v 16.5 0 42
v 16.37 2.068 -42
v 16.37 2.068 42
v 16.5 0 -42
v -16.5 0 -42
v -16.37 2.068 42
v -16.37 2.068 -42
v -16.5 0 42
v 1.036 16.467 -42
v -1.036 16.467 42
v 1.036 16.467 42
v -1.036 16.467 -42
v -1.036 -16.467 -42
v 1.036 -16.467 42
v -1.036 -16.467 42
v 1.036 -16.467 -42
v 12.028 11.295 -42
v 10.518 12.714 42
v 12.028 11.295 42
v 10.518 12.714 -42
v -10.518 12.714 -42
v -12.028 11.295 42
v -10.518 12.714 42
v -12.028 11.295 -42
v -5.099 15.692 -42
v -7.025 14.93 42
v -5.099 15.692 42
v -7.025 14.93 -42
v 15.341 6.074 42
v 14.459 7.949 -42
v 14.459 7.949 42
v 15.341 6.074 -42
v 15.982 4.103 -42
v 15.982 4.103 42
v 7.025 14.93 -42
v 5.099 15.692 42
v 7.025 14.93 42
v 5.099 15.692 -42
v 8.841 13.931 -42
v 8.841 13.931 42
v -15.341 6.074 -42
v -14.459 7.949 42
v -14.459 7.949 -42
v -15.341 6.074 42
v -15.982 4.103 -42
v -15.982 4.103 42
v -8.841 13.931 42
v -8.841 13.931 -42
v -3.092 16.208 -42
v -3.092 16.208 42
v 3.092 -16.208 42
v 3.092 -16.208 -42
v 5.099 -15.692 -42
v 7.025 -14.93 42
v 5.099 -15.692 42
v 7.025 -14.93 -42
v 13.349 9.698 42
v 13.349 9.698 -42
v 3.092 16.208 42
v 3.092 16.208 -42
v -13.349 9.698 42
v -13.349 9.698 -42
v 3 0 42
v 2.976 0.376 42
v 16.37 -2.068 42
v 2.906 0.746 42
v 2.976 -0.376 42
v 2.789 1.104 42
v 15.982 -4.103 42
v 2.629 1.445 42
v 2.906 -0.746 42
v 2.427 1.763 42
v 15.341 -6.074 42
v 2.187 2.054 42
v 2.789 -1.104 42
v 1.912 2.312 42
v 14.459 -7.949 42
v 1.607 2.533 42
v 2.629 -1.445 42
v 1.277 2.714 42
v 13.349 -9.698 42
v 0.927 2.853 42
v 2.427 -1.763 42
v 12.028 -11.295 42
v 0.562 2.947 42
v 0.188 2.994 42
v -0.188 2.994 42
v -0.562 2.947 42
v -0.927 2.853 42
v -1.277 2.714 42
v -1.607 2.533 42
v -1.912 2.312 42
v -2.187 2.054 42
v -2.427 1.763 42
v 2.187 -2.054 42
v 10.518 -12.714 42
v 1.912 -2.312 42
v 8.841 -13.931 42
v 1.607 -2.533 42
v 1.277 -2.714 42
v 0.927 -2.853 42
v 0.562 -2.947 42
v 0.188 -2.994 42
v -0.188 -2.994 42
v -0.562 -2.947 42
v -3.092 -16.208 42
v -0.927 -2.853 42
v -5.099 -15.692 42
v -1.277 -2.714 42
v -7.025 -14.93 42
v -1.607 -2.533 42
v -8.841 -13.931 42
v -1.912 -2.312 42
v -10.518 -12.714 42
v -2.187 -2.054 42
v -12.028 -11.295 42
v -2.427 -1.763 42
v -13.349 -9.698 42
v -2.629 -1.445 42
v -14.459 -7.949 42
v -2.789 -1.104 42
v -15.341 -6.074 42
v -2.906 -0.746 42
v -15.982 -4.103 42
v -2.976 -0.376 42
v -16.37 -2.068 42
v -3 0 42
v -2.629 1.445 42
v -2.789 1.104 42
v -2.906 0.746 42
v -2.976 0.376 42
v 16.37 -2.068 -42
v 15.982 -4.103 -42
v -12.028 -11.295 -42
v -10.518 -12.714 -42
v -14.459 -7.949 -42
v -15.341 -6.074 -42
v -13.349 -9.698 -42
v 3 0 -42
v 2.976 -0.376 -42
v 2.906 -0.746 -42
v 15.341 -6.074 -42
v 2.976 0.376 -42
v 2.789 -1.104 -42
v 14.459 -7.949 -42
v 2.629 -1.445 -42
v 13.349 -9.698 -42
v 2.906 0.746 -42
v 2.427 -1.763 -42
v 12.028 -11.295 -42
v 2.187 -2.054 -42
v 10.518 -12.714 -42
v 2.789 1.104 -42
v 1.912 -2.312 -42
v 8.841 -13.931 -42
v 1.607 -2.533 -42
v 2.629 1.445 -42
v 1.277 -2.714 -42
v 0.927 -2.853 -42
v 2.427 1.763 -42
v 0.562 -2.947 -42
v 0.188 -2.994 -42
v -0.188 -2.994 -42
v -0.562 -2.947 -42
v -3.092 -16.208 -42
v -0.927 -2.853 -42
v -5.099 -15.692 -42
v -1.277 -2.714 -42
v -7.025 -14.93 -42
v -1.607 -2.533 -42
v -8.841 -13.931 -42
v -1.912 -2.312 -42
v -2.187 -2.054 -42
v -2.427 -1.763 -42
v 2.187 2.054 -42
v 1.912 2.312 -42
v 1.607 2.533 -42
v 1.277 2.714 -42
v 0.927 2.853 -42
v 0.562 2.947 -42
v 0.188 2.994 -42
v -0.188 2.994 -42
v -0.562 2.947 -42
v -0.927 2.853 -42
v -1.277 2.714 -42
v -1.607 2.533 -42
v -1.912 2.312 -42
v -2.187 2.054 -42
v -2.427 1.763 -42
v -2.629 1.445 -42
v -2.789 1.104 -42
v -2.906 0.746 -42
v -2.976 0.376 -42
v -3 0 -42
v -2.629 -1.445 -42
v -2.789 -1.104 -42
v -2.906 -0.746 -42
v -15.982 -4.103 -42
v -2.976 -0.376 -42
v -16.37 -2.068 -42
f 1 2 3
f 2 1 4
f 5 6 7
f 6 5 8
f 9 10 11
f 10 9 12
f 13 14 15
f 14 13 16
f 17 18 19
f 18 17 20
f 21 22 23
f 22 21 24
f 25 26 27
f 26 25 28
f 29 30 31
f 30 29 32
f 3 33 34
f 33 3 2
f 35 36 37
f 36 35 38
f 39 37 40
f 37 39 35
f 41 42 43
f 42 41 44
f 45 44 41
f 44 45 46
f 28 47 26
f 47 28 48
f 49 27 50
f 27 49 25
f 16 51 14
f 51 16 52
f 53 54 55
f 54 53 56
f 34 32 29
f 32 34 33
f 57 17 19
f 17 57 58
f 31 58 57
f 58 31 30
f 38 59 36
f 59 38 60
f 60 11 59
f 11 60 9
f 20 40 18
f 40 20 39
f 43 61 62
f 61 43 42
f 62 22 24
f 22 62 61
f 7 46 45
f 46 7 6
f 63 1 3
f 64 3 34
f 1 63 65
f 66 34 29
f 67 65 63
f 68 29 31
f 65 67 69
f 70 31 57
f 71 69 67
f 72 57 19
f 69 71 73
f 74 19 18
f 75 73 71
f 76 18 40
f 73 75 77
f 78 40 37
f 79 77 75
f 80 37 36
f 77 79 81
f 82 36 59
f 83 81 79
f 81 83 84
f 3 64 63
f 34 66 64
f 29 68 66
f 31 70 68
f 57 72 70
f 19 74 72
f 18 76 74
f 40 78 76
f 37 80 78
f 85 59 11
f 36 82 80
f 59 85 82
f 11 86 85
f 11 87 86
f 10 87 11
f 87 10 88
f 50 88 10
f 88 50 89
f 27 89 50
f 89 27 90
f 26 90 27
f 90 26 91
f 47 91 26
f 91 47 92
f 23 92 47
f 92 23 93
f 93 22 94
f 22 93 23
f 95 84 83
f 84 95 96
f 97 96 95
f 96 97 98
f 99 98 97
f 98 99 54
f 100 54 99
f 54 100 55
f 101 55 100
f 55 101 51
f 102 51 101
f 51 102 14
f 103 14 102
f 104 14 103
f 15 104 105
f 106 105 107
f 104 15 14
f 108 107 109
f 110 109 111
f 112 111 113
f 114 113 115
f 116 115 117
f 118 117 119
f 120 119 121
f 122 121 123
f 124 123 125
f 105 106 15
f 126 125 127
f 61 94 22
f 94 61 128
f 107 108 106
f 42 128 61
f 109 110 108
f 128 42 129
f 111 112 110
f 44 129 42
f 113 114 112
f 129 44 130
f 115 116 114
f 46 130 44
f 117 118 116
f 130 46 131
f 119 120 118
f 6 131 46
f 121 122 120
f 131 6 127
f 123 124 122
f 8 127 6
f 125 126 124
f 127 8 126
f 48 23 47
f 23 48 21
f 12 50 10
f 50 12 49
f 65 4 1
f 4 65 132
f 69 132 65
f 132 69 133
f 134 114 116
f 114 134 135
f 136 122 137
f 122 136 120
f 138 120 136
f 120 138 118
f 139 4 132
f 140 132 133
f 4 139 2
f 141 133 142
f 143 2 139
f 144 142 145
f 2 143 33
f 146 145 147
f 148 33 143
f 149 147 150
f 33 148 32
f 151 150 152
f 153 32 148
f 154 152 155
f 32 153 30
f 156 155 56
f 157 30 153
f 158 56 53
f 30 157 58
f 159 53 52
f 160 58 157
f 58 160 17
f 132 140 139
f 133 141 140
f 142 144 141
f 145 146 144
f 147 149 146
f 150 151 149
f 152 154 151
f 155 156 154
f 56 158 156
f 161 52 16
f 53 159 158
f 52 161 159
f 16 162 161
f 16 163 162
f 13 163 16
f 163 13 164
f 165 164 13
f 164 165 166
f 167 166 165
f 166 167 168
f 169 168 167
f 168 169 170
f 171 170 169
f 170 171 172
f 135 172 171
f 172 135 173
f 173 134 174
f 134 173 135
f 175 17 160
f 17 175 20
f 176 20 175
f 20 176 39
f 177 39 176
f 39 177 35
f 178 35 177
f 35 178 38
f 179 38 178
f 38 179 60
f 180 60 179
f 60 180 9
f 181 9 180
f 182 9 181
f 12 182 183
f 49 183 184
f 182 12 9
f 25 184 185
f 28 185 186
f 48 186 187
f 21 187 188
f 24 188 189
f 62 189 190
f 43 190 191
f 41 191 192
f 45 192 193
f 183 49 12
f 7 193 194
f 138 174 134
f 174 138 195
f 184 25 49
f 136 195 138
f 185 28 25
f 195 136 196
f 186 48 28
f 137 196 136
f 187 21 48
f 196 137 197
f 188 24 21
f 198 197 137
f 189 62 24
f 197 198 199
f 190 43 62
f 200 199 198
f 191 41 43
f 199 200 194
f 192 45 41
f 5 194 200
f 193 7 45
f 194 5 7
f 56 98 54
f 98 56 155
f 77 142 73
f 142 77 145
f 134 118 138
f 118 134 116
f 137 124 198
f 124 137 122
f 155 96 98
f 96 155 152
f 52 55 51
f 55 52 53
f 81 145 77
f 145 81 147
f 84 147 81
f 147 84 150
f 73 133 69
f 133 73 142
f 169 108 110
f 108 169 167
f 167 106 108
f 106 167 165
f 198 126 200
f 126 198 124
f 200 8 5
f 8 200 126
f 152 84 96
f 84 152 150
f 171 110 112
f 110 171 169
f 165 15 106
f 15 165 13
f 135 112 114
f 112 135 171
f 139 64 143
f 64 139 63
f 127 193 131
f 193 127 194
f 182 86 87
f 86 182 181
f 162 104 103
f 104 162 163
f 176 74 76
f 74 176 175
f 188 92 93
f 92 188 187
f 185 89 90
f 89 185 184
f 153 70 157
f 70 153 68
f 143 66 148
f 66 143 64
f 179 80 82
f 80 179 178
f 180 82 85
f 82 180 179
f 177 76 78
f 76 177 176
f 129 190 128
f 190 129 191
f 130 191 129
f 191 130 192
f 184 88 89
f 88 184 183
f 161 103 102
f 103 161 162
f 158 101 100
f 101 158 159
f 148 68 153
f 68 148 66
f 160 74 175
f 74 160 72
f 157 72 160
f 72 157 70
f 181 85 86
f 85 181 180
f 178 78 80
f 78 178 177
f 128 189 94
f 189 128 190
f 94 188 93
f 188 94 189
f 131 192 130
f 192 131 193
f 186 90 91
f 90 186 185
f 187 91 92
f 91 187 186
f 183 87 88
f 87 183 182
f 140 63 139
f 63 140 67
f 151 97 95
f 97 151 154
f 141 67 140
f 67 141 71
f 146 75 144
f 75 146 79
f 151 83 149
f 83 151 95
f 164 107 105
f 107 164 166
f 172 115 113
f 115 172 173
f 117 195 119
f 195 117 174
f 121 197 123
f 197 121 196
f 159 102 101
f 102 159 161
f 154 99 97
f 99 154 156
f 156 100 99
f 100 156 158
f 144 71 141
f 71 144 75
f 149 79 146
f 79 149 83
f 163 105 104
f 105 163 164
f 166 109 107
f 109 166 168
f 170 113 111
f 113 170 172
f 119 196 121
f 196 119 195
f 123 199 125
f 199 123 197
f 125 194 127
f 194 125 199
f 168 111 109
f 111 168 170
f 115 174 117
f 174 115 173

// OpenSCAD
$fn = 50;


difference() {
	union() {
		translate(v = [0, 0, -42.0000000000]) {
			cylinder(h = 84, r = 16.5000000000);
		}
	}
	union() {
		translate(v = [0, 0, -100.0000000000]) {
			cylinder(h = 200, r = 3);
		}
	}
}
